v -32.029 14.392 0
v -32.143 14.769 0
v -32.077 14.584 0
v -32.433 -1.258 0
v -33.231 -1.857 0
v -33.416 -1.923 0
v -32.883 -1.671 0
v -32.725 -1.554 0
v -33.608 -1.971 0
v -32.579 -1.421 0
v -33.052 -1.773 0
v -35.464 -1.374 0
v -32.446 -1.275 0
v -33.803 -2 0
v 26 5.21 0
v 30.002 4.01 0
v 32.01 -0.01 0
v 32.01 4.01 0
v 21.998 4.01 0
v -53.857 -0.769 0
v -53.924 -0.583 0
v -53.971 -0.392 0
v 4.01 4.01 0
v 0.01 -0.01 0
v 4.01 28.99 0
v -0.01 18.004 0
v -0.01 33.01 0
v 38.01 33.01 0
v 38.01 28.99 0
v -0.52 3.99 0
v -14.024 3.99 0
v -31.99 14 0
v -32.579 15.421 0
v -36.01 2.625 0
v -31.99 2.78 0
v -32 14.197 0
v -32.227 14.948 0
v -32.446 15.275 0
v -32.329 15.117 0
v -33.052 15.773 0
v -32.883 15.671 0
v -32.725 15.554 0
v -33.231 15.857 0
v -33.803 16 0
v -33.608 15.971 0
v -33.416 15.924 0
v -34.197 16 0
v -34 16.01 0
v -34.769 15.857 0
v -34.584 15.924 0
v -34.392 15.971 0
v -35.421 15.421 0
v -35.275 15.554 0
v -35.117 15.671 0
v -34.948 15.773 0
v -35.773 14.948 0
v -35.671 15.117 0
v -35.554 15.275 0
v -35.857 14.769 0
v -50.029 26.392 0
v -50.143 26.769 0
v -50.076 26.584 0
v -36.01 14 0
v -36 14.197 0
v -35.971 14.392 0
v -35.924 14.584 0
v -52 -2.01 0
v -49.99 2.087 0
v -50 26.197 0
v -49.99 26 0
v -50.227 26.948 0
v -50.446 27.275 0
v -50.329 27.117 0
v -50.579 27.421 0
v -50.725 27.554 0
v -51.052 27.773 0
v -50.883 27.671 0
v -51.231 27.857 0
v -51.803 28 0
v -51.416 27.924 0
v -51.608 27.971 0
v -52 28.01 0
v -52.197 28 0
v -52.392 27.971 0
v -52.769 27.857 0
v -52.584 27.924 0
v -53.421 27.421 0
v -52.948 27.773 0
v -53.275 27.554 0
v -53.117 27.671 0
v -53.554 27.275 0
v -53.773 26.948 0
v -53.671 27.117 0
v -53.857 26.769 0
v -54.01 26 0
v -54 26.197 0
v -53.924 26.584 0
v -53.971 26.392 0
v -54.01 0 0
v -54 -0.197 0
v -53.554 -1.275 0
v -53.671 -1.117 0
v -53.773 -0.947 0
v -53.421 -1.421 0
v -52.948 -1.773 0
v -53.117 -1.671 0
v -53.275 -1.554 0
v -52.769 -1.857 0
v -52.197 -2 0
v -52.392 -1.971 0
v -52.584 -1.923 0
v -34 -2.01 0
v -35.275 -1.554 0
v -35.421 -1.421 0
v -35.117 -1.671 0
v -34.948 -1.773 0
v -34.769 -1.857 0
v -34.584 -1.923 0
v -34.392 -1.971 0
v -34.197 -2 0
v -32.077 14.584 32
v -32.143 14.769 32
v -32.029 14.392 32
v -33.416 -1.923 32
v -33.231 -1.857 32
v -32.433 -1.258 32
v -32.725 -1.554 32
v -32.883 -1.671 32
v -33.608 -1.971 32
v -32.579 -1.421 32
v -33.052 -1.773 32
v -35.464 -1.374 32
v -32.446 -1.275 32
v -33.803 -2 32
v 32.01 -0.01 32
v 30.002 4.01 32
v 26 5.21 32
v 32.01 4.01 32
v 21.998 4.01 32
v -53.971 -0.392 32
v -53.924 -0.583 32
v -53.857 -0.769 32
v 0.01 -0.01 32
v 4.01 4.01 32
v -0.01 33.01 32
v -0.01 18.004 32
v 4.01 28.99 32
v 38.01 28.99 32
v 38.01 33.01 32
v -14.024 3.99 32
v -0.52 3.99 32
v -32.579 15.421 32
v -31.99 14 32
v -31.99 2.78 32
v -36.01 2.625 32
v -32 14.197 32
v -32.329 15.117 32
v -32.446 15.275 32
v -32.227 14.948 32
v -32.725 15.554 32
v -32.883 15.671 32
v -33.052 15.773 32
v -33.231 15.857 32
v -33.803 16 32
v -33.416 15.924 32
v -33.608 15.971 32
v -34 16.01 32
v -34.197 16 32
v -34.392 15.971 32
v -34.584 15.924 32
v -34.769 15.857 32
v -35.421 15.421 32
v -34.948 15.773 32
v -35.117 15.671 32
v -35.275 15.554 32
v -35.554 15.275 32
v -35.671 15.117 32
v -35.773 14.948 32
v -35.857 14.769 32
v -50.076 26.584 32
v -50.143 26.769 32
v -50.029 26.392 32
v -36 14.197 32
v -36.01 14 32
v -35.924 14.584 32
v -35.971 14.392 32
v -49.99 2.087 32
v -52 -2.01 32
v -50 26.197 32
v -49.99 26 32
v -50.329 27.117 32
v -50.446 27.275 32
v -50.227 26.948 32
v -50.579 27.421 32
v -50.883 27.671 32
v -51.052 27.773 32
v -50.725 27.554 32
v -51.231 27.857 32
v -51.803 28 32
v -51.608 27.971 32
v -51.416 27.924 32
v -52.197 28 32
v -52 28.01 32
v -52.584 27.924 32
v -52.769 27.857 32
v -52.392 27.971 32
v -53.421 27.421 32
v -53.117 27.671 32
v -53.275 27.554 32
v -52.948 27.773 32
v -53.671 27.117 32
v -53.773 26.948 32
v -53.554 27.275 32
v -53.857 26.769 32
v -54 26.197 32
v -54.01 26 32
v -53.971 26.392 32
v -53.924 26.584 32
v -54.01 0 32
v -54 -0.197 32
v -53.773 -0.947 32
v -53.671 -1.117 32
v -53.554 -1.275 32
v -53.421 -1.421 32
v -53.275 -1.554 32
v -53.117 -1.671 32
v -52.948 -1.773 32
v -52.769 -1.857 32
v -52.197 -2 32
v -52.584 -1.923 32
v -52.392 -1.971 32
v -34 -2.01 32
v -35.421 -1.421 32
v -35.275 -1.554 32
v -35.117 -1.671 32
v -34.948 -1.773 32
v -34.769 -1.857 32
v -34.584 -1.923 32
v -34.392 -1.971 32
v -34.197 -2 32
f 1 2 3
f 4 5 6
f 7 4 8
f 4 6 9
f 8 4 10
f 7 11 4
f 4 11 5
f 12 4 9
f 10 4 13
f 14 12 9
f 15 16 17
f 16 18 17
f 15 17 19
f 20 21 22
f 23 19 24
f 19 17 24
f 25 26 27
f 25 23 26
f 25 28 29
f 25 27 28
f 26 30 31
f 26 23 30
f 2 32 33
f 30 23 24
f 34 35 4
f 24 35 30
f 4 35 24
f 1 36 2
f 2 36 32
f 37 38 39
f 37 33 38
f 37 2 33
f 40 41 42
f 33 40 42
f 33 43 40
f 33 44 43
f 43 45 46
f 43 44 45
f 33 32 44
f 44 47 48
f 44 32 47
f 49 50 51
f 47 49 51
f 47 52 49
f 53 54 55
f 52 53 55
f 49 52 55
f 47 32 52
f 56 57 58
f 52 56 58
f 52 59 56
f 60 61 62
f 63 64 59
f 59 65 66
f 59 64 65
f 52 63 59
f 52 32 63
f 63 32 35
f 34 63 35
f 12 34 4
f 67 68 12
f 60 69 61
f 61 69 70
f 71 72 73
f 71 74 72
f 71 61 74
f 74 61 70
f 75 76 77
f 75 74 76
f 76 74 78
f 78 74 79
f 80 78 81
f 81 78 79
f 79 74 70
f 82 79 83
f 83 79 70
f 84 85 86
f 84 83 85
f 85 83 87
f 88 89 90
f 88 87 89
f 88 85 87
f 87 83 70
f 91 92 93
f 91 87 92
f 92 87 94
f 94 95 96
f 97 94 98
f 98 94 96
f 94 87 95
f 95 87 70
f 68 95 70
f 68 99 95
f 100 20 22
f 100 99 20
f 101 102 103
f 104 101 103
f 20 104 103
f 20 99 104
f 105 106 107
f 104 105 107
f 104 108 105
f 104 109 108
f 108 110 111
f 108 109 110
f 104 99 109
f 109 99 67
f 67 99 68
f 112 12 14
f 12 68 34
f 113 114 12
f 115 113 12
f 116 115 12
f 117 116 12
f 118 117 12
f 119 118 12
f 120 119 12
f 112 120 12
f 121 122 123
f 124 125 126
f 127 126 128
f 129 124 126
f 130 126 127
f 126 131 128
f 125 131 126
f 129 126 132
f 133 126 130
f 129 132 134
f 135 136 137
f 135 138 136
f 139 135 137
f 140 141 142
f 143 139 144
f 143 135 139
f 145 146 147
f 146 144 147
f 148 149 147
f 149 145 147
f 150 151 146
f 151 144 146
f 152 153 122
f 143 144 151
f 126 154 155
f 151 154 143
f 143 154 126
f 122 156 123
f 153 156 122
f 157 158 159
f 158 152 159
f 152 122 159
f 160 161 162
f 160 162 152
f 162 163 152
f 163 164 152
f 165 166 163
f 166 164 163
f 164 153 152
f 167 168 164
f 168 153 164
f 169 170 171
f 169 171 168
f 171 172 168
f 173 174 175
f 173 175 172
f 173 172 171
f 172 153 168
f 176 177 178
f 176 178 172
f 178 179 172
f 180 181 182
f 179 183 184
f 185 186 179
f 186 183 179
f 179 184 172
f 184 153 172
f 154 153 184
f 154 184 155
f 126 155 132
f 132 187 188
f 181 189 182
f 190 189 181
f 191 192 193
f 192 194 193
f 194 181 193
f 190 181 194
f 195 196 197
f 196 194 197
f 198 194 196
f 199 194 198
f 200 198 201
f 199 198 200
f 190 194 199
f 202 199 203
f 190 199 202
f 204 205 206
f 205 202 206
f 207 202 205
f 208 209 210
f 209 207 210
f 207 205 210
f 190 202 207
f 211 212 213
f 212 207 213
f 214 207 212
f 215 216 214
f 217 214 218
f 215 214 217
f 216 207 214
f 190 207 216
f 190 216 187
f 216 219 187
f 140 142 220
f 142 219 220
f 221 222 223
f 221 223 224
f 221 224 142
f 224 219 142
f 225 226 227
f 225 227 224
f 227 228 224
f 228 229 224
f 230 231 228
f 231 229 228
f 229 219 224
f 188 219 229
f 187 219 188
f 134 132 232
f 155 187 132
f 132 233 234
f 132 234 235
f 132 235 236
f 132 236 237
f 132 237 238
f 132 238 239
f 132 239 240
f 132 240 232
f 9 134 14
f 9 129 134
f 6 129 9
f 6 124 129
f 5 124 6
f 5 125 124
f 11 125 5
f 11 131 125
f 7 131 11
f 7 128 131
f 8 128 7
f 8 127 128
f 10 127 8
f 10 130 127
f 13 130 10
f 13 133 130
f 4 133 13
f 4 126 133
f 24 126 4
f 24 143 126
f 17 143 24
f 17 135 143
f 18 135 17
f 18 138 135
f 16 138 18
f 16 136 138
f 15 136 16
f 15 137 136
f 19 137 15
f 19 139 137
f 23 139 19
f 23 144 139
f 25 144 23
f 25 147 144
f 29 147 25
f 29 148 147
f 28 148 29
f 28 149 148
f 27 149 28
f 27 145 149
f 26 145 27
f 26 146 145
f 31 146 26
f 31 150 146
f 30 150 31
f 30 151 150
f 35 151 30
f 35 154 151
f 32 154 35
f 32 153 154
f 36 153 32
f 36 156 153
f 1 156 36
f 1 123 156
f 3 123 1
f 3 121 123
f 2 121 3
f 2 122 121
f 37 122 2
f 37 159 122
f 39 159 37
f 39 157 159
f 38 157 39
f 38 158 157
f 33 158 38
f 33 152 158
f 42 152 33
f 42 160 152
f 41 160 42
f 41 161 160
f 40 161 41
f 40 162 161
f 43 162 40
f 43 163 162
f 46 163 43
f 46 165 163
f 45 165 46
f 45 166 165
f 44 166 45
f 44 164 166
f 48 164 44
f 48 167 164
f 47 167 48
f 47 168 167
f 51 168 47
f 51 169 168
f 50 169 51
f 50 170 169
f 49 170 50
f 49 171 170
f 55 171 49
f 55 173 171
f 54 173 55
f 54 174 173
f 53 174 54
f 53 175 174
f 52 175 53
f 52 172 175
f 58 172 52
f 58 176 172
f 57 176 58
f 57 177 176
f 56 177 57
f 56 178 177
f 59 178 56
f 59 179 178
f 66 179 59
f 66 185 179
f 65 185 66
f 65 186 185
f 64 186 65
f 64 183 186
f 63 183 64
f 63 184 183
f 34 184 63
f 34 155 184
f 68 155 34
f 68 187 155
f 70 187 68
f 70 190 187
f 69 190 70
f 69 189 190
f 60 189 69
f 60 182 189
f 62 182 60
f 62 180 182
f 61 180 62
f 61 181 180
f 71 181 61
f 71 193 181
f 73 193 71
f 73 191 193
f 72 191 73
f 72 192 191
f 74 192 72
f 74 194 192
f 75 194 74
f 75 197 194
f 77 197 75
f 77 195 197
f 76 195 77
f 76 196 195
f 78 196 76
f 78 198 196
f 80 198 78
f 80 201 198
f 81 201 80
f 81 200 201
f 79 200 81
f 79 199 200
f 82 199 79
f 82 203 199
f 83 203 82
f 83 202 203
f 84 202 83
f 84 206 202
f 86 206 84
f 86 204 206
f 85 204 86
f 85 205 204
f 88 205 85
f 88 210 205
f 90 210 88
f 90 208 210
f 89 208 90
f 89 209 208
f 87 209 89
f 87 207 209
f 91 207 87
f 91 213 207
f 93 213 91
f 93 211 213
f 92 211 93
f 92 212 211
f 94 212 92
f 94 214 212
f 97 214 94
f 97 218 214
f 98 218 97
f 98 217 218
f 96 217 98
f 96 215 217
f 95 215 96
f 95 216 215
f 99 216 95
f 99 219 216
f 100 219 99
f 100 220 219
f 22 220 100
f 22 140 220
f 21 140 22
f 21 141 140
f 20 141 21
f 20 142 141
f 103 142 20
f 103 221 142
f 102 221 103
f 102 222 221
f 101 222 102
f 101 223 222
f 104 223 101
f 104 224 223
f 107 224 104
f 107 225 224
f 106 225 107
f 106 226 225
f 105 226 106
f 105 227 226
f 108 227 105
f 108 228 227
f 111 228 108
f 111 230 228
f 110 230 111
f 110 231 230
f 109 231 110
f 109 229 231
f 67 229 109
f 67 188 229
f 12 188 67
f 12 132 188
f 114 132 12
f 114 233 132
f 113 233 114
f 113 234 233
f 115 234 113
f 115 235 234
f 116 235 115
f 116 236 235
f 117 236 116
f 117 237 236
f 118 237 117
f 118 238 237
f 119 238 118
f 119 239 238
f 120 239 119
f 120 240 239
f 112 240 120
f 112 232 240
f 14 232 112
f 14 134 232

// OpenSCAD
// Desk-edge / shelf-edge glasses holder. Clamps over a tabletop; a cradle holds glasses by the bridge/temples.
// Print on its SIDE (profile flat on the bed), no supports. PETG recommended.
desk_t = 25;     // tabletop/shelf thickness it clamps onto (adjust!)
w      = 32;     // width (print height)
t      = 4;      // wall
clamp_d = 38;    // how far the clamp reaches over the desk
arm    = 52;     // cradle arm length out from the desk edge
$fn = 64;

module profile() {
    // outer clamp "C": back wall, top, bottom (lower jaw longer)
    translate([0, 0]) square([t, desk_t + 2 * t]);                        // back wall at desk edge
    translate([0, desk_t + t]) square([clamp_d, t]);                      // top jaw (on desk surface)
    translate([0, 0]) square([clamp_d - 6, t]);                          // bottom jaw (under desk), shorter
    // grip bump on the lower jaw
    translate([clamp_d - 16, t]) polygon([[0, 0], [8, 0], [4, 1.2]]);
    // cradle arm projecting out from the bottom of the back wall (away from desk)
    hull() { translate([0, 0]) square([0.01, t]); translate([-arm, 0]) circle(d = t); }
    // upturned cradle: two prongs forming a V that holds the glasses bridge
    hull() { translate([-arm, 0]) circle(d = t); translate([-arm, 26]) circle(d = t); }
    hull() { translate([-arm + 18, 0]) circle(d = t); translate([-arm + 18, 14]) circle(d = t); }
    // gusset under the arm for strength
    polygon([[0, t], [-14, t], [0, 18]]);
}

linear_extrude(height = w) offset(delta = 0.01) profile();
